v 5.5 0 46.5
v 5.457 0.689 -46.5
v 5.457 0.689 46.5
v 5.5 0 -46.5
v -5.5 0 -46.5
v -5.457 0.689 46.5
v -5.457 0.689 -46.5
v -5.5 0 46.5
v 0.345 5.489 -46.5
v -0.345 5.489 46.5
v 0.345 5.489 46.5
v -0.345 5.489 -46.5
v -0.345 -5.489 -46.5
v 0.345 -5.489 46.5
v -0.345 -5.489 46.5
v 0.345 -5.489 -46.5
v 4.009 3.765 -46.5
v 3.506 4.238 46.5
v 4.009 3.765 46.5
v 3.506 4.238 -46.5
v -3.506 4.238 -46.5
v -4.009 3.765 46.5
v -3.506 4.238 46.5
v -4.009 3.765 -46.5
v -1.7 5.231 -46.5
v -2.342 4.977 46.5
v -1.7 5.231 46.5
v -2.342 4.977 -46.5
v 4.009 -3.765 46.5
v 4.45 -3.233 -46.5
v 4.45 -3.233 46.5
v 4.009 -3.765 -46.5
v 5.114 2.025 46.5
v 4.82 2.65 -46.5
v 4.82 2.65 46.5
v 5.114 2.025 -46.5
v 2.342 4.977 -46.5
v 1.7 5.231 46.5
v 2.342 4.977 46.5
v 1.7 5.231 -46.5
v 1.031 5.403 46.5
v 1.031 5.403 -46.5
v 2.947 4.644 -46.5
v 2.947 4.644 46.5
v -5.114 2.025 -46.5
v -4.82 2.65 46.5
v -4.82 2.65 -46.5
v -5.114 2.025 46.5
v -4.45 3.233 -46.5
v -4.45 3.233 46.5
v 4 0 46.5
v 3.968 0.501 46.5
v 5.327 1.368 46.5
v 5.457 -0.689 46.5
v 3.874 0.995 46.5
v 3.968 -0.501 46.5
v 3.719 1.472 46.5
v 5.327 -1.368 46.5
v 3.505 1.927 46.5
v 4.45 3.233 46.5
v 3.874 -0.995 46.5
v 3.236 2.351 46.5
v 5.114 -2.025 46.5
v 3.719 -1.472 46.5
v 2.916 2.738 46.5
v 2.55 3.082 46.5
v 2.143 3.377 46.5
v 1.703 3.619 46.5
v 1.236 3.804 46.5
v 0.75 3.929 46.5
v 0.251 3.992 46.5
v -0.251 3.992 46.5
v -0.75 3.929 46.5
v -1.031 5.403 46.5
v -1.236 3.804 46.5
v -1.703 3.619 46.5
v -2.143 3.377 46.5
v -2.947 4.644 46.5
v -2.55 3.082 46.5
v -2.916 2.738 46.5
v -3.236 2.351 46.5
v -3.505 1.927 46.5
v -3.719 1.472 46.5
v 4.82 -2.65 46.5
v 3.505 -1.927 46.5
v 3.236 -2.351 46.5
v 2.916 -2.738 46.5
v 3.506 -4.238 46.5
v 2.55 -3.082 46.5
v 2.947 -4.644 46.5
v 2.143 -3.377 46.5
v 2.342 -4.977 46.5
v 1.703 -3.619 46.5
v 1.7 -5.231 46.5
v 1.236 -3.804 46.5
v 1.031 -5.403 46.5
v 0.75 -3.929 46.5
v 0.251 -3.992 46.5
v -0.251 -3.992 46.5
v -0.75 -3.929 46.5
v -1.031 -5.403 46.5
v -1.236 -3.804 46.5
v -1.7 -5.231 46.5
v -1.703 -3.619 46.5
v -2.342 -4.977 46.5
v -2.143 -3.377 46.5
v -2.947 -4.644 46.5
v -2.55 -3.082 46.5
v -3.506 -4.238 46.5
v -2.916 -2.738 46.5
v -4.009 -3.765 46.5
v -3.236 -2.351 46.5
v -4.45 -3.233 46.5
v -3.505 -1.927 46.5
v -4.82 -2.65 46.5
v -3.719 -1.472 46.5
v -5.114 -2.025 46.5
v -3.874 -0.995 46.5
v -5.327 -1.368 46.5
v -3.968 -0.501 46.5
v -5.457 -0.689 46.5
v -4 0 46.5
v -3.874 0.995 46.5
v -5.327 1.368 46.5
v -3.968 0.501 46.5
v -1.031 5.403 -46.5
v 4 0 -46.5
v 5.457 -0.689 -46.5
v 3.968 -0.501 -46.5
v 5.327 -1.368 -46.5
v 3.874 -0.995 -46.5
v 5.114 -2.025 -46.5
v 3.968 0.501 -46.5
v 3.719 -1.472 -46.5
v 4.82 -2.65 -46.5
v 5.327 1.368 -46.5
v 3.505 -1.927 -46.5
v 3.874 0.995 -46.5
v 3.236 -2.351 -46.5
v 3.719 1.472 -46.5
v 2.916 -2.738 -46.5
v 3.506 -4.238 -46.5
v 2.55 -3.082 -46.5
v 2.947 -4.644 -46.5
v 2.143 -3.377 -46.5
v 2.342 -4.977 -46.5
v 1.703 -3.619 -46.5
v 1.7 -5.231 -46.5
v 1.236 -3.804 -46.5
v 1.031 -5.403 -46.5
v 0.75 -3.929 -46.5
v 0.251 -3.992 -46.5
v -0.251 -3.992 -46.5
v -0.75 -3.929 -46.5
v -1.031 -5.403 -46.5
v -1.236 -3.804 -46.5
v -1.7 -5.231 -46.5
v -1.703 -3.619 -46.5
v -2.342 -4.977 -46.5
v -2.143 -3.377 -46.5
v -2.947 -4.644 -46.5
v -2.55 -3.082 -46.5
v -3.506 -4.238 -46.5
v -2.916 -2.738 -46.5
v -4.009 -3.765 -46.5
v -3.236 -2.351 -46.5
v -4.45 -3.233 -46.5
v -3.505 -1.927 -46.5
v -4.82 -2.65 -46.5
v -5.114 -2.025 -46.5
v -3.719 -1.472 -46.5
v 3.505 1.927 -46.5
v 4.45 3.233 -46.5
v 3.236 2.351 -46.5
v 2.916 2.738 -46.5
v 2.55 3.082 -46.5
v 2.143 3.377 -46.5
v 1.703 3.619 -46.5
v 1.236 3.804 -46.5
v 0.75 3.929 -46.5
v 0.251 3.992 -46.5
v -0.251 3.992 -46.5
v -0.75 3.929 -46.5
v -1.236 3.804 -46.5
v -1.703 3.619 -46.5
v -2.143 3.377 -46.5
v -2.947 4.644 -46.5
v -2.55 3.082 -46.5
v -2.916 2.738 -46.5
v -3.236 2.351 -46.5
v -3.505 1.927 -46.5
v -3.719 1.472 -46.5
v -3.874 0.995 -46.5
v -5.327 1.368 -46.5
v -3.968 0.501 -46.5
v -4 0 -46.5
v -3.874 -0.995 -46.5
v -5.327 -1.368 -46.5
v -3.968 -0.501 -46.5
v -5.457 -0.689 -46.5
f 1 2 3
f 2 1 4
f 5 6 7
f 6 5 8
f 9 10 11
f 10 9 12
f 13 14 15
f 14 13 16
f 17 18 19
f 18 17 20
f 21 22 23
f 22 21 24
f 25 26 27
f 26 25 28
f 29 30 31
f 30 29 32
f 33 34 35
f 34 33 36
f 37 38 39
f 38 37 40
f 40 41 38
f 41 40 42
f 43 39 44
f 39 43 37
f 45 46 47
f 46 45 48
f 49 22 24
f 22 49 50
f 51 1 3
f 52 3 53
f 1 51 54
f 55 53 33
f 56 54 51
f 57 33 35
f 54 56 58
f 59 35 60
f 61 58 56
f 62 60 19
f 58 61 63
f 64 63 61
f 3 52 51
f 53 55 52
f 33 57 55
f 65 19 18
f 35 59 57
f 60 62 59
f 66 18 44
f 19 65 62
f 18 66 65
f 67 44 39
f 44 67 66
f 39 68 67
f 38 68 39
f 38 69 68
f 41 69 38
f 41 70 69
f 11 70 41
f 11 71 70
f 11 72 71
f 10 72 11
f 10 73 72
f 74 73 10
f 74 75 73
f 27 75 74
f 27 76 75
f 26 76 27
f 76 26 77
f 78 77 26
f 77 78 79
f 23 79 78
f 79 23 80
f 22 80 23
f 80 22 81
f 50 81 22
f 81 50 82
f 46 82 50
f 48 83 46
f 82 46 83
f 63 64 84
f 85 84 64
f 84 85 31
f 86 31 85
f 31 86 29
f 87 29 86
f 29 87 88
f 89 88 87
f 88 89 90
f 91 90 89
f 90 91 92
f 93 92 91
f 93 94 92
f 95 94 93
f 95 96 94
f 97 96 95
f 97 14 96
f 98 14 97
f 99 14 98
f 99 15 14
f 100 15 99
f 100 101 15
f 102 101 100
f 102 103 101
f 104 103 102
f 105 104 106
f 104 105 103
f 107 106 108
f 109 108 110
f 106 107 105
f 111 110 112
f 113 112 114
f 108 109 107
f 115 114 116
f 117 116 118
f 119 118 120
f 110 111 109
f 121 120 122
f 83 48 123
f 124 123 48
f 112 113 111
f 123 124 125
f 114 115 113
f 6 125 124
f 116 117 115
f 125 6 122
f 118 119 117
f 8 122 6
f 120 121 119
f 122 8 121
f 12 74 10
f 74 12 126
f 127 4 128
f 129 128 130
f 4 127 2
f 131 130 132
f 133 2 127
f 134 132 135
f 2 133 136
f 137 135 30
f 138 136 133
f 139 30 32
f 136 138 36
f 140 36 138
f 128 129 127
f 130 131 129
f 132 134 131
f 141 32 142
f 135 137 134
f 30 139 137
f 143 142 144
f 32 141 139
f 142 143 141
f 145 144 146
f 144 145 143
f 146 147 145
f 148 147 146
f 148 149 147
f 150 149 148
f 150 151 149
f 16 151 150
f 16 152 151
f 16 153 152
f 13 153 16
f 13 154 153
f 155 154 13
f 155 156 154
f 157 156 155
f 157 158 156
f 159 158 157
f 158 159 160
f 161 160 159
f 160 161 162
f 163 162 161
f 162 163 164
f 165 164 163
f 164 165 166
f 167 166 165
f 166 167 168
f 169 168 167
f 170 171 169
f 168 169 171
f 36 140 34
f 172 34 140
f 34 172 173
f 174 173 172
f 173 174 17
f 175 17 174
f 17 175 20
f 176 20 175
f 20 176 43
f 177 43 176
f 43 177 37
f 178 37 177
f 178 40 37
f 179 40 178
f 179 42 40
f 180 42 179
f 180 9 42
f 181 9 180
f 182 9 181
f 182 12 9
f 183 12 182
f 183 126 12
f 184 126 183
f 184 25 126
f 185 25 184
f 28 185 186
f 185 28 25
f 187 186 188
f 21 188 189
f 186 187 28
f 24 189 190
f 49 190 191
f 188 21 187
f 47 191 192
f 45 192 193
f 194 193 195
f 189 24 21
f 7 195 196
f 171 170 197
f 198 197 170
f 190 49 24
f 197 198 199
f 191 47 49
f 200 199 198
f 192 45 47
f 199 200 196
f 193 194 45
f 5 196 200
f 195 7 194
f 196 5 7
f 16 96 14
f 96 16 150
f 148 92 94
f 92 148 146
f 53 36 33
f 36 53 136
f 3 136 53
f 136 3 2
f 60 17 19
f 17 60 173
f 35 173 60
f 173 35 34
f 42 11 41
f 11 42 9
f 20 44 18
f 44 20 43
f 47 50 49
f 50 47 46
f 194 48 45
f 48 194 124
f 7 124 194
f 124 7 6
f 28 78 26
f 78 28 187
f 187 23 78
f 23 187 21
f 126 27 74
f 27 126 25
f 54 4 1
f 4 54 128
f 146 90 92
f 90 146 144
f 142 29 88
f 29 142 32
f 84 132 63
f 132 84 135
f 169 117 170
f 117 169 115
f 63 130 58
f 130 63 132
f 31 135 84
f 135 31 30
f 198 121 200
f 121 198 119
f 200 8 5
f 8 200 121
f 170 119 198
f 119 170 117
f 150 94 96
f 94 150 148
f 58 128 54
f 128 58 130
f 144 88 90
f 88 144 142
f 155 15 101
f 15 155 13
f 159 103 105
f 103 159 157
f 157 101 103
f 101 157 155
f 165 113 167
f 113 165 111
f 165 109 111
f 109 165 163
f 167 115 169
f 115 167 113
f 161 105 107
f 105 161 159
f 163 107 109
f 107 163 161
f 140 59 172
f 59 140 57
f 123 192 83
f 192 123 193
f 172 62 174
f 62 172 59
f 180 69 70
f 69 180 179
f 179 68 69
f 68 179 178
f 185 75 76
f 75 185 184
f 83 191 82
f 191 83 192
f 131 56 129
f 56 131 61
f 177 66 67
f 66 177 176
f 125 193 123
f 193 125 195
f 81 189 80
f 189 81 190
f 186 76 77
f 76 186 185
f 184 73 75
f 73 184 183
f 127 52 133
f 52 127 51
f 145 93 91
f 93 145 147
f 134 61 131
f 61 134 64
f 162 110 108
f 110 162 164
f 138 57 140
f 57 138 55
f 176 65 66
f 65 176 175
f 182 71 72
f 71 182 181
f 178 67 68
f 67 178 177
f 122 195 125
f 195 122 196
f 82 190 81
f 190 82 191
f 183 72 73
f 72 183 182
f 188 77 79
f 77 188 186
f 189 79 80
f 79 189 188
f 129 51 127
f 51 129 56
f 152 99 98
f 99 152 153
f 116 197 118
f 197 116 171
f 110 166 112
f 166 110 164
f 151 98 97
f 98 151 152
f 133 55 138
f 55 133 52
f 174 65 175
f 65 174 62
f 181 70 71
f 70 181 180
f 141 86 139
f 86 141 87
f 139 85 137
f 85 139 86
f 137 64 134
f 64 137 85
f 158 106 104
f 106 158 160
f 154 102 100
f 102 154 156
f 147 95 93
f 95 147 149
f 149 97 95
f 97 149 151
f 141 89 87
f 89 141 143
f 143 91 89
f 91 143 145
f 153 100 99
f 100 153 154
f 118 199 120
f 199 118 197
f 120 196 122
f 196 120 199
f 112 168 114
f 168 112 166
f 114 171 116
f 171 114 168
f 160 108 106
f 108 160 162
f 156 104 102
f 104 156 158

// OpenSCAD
$fn = 50;


difference() {
	union() {
		translate(v = [0, 0, -46.5000000000]) {
			cylinder(h = 93, r = 5.5000000000);
		}
	}
	union() {
		translate(v = [0, 0, -100.0000000000]) {
			cylinder(h = 200, r = 4.0000000000);
		}
	}
}
